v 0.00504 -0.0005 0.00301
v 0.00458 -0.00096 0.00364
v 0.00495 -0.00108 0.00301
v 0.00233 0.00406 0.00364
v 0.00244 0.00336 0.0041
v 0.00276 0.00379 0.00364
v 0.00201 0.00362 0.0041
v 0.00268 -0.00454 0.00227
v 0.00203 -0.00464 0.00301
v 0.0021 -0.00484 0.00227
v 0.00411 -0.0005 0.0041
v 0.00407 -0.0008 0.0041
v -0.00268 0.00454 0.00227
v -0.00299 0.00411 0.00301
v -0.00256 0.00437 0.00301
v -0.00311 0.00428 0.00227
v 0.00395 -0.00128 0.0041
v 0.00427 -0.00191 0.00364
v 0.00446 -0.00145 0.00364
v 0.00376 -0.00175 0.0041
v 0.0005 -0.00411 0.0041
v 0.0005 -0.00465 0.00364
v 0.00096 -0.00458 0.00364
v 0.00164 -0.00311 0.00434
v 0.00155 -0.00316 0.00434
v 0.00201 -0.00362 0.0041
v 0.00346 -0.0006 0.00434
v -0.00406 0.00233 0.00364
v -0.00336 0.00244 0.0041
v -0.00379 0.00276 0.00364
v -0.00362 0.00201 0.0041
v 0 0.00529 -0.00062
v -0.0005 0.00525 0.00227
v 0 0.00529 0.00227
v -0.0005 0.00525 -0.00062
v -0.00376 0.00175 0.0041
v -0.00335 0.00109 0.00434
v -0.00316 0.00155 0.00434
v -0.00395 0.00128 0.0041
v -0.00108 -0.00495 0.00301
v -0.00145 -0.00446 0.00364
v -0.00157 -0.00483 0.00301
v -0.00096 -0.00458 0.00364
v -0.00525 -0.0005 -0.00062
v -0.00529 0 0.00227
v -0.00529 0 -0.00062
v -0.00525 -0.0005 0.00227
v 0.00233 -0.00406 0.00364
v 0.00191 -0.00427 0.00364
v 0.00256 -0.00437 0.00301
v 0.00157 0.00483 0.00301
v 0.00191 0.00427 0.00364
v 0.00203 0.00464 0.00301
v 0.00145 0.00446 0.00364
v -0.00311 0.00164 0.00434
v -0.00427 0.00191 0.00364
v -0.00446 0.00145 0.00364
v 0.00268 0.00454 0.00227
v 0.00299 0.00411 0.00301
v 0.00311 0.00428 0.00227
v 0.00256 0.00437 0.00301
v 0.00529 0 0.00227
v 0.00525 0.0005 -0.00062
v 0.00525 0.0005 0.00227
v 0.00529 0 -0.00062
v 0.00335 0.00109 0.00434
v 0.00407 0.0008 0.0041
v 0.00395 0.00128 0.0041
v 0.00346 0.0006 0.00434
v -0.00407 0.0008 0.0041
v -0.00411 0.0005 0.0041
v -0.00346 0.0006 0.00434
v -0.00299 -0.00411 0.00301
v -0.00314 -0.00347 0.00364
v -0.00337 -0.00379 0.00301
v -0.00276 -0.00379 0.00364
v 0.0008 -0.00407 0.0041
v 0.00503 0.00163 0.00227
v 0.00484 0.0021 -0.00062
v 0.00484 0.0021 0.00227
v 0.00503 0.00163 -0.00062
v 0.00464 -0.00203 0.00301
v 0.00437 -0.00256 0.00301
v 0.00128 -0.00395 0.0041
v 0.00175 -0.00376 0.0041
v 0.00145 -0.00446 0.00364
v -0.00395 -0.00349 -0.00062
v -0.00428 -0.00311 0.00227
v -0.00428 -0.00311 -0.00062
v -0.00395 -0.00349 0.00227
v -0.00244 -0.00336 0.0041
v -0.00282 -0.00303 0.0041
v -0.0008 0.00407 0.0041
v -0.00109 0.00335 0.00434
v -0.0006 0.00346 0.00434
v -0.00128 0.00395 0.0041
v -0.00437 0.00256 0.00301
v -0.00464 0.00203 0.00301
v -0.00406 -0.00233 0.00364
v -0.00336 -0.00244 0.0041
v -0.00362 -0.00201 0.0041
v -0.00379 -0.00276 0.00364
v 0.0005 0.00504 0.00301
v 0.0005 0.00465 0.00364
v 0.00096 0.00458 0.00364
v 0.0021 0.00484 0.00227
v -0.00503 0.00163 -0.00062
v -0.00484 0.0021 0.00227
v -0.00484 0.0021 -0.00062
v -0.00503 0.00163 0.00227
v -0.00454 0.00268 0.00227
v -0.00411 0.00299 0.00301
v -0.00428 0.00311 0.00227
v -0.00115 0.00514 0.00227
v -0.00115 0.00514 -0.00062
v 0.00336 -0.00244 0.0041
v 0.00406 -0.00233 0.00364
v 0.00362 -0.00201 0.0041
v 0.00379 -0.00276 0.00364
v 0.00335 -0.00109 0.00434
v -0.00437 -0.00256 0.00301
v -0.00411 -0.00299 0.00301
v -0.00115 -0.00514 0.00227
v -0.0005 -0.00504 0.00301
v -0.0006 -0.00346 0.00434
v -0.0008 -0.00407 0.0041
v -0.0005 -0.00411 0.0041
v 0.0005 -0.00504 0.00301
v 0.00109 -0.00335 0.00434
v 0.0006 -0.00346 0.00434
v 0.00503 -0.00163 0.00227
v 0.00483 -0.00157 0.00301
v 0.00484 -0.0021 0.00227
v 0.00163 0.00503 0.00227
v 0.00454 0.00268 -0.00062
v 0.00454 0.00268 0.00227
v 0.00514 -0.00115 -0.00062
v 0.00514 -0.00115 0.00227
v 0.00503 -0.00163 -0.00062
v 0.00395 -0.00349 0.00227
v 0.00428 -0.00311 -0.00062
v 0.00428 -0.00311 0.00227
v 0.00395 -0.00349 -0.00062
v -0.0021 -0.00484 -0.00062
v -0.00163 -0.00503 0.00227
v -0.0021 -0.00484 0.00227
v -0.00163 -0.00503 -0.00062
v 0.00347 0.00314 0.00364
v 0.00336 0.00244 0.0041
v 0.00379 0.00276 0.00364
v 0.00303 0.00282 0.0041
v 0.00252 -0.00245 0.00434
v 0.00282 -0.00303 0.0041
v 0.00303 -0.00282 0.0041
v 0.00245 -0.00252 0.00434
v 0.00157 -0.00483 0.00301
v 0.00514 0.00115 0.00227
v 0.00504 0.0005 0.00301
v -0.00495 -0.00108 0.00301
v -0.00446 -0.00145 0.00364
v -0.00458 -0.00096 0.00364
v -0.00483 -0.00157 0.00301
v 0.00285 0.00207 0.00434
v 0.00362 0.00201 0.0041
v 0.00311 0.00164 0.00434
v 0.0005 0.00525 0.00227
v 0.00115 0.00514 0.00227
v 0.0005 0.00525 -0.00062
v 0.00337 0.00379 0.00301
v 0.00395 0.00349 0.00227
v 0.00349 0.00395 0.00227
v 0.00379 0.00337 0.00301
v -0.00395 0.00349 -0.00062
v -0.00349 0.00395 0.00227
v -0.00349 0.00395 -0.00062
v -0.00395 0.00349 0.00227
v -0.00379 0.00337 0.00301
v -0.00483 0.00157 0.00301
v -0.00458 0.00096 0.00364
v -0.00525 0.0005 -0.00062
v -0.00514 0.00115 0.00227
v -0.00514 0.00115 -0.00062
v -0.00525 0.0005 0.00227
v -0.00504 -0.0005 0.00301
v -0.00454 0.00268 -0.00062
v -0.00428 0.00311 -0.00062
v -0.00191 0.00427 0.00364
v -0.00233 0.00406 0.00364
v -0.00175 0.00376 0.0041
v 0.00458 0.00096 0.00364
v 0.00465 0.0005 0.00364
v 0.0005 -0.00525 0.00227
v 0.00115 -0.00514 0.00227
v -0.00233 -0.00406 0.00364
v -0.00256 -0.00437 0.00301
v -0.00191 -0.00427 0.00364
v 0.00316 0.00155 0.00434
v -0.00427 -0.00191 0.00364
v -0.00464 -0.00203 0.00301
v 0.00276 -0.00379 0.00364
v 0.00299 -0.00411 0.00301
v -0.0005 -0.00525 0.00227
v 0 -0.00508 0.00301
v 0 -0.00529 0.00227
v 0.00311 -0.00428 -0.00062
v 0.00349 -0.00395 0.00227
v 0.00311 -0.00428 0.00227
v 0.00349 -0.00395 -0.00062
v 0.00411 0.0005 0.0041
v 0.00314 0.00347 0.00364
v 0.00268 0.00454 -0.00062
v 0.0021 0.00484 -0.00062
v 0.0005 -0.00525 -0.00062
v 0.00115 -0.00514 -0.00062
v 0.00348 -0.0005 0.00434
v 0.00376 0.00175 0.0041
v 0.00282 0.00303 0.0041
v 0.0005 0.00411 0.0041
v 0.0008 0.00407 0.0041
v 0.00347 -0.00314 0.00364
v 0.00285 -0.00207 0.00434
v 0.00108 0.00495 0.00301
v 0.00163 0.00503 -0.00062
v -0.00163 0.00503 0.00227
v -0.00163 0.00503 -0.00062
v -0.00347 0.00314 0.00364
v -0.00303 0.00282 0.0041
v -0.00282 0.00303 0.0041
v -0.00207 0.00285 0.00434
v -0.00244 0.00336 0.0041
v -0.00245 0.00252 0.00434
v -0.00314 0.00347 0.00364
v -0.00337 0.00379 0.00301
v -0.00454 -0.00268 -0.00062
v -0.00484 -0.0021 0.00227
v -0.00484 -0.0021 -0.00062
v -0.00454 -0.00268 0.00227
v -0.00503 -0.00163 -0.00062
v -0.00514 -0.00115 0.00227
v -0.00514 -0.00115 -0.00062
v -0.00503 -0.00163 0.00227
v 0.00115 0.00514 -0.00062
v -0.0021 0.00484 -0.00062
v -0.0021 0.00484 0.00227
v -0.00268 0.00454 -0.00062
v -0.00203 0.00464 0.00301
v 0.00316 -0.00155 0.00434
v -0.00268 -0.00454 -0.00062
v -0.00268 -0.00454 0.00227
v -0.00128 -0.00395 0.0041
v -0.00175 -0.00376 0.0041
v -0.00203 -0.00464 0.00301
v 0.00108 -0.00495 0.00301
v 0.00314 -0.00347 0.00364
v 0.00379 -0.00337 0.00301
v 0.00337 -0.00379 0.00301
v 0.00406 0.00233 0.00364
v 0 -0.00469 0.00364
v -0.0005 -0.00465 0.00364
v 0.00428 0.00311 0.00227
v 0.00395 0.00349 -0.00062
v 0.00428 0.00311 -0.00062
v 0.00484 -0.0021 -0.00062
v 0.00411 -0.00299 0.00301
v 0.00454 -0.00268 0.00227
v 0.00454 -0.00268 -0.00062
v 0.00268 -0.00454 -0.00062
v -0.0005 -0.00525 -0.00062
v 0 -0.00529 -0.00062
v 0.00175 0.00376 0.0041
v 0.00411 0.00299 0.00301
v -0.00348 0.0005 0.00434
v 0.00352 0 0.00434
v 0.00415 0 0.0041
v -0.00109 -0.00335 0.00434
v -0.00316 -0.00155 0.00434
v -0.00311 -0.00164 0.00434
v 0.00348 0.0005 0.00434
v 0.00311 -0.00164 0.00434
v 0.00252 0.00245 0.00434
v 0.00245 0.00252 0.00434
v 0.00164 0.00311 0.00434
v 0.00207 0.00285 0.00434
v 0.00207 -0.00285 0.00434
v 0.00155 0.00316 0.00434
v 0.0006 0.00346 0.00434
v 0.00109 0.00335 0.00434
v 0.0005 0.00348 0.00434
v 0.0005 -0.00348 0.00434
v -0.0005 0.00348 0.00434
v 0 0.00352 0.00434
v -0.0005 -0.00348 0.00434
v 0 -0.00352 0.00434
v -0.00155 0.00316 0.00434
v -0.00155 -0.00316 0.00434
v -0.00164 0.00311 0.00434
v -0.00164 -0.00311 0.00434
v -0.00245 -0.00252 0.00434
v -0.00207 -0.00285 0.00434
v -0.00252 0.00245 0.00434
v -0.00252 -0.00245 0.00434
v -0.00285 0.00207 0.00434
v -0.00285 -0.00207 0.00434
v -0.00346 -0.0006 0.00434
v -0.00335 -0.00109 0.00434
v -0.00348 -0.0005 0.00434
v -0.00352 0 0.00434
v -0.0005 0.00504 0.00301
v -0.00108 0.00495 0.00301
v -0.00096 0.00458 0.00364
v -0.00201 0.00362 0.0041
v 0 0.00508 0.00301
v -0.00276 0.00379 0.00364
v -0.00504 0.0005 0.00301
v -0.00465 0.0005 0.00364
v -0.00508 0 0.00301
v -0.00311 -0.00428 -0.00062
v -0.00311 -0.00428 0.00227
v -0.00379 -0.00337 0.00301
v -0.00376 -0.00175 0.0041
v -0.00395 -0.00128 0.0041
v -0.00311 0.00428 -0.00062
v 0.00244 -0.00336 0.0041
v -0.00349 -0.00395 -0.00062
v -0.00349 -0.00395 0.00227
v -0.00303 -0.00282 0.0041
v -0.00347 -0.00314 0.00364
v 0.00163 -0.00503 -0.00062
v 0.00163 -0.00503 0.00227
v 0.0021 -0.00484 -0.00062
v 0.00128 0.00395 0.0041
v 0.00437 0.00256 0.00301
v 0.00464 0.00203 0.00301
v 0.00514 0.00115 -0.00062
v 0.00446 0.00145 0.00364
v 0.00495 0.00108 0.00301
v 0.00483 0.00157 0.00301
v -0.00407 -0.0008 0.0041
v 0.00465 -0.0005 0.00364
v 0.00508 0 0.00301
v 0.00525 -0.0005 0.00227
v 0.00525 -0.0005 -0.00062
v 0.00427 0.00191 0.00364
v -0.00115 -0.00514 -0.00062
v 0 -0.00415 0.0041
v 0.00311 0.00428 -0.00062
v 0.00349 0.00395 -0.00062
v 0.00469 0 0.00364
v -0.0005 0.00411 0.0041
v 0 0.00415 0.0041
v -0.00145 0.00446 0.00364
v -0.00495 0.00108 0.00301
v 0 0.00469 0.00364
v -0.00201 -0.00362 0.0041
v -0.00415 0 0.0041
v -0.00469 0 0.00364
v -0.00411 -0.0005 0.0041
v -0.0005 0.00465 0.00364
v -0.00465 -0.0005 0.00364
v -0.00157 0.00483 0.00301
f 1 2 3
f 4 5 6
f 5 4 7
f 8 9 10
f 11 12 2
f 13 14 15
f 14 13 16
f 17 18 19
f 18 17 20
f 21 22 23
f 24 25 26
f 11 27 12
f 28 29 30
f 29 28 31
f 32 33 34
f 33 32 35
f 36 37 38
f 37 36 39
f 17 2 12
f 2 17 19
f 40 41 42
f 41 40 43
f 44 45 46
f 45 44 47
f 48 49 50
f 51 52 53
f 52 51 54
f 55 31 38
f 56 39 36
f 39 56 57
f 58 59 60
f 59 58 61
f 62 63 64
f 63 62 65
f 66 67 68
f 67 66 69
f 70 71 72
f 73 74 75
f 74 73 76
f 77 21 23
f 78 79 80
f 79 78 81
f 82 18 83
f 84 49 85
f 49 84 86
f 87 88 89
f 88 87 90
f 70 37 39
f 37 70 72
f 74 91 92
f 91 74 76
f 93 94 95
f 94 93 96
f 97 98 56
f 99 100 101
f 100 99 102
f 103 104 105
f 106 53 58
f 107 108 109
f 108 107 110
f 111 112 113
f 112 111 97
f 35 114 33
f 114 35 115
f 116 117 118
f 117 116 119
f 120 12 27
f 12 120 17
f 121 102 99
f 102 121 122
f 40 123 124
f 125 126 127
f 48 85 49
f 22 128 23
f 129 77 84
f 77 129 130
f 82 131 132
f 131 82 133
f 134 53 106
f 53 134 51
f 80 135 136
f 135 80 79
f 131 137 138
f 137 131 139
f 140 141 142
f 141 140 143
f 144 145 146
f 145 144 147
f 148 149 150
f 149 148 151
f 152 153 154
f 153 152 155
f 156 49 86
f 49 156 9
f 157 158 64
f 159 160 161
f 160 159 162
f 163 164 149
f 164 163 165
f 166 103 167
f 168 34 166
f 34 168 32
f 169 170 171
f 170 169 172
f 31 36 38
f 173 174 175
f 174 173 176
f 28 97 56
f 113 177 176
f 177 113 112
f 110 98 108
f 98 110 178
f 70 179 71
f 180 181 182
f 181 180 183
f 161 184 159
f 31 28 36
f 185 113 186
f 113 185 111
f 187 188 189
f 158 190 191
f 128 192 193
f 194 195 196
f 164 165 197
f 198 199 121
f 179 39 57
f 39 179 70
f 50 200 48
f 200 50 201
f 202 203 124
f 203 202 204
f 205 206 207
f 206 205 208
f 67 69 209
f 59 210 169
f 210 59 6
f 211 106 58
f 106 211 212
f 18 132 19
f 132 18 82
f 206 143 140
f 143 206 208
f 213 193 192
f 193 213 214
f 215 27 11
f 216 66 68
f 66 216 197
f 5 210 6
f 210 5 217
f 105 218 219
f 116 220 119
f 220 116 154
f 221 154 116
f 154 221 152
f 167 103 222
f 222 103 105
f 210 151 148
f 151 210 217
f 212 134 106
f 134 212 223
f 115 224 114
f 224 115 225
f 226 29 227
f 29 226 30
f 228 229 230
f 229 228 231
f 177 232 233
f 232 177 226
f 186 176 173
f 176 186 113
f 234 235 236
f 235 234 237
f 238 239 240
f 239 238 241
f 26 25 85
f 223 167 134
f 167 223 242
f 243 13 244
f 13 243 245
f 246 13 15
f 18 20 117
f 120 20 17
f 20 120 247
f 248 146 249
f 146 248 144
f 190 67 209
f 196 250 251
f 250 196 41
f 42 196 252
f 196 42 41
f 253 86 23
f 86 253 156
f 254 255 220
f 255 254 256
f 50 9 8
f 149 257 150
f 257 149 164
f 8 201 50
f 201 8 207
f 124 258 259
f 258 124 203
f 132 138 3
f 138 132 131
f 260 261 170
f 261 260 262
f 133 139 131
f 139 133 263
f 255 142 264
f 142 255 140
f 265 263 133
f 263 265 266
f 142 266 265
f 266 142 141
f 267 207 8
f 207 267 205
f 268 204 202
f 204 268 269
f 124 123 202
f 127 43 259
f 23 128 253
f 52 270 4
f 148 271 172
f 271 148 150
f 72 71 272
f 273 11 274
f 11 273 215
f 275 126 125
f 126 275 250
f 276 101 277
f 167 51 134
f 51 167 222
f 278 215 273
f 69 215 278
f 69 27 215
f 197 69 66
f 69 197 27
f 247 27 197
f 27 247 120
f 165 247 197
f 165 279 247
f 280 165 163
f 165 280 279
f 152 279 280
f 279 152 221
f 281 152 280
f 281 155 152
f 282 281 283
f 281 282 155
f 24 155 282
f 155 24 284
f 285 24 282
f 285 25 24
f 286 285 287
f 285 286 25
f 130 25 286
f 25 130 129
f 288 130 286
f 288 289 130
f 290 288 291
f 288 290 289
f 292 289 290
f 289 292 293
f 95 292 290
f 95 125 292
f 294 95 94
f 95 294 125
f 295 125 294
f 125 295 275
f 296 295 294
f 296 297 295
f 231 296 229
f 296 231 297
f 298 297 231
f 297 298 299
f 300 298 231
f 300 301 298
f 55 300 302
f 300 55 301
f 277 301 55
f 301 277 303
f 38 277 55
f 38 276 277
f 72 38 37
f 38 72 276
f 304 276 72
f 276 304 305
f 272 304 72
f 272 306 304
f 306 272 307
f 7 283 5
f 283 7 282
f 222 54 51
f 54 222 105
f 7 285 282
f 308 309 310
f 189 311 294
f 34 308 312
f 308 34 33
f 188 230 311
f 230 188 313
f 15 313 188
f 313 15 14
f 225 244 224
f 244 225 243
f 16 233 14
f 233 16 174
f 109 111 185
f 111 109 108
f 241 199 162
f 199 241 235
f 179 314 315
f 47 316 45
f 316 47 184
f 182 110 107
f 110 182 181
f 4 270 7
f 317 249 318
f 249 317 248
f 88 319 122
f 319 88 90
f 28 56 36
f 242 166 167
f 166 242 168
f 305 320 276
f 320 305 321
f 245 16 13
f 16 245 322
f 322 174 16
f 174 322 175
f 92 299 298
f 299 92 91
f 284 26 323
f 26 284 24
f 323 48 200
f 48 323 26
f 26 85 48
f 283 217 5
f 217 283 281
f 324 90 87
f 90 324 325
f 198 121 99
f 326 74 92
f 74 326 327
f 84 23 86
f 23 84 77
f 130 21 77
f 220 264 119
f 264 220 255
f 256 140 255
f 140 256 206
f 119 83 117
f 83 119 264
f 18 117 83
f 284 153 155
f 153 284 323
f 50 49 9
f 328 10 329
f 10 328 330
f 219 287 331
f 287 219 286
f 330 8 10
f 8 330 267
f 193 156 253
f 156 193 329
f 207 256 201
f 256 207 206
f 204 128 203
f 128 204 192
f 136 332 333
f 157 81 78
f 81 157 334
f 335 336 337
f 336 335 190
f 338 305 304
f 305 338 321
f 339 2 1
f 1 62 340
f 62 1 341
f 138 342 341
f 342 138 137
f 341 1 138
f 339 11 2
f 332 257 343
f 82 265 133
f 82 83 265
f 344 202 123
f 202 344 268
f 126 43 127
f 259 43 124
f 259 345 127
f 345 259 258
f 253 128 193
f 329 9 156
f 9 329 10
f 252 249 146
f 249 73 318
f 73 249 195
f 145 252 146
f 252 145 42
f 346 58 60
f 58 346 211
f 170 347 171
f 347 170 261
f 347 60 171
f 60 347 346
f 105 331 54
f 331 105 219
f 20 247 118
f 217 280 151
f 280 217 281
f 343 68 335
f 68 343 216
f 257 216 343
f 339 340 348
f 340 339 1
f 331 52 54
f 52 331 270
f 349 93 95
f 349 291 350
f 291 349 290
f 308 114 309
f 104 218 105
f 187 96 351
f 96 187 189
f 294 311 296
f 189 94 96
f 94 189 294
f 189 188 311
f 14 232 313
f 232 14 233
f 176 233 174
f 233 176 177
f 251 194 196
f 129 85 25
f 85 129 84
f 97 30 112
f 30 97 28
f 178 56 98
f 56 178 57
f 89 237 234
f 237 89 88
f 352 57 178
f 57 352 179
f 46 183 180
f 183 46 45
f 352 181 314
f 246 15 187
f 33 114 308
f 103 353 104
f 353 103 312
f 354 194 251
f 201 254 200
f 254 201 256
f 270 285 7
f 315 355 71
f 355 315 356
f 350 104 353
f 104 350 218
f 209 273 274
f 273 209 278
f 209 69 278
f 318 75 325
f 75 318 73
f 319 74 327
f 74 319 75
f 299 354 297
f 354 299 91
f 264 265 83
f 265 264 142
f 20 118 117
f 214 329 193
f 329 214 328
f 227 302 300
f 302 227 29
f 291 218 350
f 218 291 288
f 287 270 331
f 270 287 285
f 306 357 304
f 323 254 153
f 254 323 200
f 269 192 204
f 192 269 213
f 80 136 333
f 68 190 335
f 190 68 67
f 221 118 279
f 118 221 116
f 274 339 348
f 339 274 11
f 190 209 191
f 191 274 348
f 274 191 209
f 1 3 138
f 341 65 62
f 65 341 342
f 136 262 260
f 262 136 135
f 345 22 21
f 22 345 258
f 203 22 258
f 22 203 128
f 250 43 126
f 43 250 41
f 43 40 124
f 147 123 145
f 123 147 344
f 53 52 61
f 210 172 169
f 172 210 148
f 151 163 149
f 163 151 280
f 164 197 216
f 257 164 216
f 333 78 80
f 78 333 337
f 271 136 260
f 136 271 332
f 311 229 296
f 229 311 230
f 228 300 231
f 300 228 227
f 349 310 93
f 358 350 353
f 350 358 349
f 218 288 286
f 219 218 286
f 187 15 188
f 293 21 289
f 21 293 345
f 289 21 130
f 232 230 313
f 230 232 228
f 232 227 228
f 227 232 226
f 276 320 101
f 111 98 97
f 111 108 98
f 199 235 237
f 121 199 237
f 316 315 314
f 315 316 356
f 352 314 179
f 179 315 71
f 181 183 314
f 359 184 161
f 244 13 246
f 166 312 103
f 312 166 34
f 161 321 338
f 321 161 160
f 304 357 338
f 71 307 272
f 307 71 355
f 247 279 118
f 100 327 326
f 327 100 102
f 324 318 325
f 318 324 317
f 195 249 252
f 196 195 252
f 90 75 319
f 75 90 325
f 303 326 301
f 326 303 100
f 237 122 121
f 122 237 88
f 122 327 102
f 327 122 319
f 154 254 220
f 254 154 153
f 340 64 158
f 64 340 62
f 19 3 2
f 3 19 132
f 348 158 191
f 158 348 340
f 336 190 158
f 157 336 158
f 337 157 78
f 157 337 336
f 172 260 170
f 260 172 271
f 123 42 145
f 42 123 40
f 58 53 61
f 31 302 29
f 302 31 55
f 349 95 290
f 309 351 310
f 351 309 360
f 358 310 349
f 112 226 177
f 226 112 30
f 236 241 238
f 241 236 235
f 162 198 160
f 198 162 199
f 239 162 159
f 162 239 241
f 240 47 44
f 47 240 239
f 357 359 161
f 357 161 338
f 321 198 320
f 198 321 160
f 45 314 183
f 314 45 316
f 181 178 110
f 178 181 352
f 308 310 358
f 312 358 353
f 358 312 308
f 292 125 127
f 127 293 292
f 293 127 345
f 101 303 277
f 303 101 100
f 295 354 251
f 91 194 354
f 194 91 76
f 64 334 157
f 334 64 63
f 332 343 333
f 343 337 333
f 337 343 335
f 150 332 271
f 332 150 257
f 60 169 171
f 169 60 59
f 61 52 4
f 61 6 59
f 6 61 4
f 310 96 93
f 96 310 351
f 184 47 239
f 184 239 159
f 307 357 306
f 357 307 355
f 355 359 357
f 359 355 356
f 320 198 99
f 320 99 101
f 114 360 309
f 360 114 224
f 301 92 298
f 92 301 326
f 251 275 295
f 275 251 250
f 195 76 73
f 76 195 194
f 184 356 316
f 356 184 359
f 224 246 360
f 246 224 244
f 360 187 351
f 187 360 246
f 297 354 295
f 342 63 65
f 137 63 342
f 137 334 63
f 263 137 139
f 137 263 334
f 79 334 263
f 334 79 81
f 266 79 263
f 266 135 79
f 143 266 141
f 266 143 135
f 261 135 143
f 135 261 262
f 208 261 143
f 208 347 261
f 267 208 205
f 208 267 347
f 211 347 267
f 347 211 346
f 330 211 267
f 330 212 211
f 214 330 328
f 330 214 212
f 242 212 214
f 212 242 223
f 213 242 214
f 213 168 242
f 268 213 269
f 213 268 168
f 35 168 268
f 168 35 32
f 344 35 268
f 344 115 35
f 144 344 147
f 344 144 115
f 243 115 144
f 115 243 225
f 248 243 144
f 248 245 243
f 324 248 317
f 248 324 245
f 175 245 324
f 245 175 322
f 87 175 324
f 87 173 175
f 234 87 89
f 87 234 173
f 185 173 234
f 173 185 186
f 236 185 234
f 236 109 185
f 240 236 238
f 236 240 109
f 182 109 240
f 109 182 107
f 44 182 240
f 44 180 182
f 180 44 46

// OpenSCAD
scale([0.00125, 0.00125, 0.00125])
scale([0.85, 0.85, 1])
difference() {
    minkowski() {
        cylinder(3, 3, 3, $fn=40, true);
        sphere(2, $fn=20);
    };
    translate([0, 0, -3])
    cube([10, 10, 5], true);
}
